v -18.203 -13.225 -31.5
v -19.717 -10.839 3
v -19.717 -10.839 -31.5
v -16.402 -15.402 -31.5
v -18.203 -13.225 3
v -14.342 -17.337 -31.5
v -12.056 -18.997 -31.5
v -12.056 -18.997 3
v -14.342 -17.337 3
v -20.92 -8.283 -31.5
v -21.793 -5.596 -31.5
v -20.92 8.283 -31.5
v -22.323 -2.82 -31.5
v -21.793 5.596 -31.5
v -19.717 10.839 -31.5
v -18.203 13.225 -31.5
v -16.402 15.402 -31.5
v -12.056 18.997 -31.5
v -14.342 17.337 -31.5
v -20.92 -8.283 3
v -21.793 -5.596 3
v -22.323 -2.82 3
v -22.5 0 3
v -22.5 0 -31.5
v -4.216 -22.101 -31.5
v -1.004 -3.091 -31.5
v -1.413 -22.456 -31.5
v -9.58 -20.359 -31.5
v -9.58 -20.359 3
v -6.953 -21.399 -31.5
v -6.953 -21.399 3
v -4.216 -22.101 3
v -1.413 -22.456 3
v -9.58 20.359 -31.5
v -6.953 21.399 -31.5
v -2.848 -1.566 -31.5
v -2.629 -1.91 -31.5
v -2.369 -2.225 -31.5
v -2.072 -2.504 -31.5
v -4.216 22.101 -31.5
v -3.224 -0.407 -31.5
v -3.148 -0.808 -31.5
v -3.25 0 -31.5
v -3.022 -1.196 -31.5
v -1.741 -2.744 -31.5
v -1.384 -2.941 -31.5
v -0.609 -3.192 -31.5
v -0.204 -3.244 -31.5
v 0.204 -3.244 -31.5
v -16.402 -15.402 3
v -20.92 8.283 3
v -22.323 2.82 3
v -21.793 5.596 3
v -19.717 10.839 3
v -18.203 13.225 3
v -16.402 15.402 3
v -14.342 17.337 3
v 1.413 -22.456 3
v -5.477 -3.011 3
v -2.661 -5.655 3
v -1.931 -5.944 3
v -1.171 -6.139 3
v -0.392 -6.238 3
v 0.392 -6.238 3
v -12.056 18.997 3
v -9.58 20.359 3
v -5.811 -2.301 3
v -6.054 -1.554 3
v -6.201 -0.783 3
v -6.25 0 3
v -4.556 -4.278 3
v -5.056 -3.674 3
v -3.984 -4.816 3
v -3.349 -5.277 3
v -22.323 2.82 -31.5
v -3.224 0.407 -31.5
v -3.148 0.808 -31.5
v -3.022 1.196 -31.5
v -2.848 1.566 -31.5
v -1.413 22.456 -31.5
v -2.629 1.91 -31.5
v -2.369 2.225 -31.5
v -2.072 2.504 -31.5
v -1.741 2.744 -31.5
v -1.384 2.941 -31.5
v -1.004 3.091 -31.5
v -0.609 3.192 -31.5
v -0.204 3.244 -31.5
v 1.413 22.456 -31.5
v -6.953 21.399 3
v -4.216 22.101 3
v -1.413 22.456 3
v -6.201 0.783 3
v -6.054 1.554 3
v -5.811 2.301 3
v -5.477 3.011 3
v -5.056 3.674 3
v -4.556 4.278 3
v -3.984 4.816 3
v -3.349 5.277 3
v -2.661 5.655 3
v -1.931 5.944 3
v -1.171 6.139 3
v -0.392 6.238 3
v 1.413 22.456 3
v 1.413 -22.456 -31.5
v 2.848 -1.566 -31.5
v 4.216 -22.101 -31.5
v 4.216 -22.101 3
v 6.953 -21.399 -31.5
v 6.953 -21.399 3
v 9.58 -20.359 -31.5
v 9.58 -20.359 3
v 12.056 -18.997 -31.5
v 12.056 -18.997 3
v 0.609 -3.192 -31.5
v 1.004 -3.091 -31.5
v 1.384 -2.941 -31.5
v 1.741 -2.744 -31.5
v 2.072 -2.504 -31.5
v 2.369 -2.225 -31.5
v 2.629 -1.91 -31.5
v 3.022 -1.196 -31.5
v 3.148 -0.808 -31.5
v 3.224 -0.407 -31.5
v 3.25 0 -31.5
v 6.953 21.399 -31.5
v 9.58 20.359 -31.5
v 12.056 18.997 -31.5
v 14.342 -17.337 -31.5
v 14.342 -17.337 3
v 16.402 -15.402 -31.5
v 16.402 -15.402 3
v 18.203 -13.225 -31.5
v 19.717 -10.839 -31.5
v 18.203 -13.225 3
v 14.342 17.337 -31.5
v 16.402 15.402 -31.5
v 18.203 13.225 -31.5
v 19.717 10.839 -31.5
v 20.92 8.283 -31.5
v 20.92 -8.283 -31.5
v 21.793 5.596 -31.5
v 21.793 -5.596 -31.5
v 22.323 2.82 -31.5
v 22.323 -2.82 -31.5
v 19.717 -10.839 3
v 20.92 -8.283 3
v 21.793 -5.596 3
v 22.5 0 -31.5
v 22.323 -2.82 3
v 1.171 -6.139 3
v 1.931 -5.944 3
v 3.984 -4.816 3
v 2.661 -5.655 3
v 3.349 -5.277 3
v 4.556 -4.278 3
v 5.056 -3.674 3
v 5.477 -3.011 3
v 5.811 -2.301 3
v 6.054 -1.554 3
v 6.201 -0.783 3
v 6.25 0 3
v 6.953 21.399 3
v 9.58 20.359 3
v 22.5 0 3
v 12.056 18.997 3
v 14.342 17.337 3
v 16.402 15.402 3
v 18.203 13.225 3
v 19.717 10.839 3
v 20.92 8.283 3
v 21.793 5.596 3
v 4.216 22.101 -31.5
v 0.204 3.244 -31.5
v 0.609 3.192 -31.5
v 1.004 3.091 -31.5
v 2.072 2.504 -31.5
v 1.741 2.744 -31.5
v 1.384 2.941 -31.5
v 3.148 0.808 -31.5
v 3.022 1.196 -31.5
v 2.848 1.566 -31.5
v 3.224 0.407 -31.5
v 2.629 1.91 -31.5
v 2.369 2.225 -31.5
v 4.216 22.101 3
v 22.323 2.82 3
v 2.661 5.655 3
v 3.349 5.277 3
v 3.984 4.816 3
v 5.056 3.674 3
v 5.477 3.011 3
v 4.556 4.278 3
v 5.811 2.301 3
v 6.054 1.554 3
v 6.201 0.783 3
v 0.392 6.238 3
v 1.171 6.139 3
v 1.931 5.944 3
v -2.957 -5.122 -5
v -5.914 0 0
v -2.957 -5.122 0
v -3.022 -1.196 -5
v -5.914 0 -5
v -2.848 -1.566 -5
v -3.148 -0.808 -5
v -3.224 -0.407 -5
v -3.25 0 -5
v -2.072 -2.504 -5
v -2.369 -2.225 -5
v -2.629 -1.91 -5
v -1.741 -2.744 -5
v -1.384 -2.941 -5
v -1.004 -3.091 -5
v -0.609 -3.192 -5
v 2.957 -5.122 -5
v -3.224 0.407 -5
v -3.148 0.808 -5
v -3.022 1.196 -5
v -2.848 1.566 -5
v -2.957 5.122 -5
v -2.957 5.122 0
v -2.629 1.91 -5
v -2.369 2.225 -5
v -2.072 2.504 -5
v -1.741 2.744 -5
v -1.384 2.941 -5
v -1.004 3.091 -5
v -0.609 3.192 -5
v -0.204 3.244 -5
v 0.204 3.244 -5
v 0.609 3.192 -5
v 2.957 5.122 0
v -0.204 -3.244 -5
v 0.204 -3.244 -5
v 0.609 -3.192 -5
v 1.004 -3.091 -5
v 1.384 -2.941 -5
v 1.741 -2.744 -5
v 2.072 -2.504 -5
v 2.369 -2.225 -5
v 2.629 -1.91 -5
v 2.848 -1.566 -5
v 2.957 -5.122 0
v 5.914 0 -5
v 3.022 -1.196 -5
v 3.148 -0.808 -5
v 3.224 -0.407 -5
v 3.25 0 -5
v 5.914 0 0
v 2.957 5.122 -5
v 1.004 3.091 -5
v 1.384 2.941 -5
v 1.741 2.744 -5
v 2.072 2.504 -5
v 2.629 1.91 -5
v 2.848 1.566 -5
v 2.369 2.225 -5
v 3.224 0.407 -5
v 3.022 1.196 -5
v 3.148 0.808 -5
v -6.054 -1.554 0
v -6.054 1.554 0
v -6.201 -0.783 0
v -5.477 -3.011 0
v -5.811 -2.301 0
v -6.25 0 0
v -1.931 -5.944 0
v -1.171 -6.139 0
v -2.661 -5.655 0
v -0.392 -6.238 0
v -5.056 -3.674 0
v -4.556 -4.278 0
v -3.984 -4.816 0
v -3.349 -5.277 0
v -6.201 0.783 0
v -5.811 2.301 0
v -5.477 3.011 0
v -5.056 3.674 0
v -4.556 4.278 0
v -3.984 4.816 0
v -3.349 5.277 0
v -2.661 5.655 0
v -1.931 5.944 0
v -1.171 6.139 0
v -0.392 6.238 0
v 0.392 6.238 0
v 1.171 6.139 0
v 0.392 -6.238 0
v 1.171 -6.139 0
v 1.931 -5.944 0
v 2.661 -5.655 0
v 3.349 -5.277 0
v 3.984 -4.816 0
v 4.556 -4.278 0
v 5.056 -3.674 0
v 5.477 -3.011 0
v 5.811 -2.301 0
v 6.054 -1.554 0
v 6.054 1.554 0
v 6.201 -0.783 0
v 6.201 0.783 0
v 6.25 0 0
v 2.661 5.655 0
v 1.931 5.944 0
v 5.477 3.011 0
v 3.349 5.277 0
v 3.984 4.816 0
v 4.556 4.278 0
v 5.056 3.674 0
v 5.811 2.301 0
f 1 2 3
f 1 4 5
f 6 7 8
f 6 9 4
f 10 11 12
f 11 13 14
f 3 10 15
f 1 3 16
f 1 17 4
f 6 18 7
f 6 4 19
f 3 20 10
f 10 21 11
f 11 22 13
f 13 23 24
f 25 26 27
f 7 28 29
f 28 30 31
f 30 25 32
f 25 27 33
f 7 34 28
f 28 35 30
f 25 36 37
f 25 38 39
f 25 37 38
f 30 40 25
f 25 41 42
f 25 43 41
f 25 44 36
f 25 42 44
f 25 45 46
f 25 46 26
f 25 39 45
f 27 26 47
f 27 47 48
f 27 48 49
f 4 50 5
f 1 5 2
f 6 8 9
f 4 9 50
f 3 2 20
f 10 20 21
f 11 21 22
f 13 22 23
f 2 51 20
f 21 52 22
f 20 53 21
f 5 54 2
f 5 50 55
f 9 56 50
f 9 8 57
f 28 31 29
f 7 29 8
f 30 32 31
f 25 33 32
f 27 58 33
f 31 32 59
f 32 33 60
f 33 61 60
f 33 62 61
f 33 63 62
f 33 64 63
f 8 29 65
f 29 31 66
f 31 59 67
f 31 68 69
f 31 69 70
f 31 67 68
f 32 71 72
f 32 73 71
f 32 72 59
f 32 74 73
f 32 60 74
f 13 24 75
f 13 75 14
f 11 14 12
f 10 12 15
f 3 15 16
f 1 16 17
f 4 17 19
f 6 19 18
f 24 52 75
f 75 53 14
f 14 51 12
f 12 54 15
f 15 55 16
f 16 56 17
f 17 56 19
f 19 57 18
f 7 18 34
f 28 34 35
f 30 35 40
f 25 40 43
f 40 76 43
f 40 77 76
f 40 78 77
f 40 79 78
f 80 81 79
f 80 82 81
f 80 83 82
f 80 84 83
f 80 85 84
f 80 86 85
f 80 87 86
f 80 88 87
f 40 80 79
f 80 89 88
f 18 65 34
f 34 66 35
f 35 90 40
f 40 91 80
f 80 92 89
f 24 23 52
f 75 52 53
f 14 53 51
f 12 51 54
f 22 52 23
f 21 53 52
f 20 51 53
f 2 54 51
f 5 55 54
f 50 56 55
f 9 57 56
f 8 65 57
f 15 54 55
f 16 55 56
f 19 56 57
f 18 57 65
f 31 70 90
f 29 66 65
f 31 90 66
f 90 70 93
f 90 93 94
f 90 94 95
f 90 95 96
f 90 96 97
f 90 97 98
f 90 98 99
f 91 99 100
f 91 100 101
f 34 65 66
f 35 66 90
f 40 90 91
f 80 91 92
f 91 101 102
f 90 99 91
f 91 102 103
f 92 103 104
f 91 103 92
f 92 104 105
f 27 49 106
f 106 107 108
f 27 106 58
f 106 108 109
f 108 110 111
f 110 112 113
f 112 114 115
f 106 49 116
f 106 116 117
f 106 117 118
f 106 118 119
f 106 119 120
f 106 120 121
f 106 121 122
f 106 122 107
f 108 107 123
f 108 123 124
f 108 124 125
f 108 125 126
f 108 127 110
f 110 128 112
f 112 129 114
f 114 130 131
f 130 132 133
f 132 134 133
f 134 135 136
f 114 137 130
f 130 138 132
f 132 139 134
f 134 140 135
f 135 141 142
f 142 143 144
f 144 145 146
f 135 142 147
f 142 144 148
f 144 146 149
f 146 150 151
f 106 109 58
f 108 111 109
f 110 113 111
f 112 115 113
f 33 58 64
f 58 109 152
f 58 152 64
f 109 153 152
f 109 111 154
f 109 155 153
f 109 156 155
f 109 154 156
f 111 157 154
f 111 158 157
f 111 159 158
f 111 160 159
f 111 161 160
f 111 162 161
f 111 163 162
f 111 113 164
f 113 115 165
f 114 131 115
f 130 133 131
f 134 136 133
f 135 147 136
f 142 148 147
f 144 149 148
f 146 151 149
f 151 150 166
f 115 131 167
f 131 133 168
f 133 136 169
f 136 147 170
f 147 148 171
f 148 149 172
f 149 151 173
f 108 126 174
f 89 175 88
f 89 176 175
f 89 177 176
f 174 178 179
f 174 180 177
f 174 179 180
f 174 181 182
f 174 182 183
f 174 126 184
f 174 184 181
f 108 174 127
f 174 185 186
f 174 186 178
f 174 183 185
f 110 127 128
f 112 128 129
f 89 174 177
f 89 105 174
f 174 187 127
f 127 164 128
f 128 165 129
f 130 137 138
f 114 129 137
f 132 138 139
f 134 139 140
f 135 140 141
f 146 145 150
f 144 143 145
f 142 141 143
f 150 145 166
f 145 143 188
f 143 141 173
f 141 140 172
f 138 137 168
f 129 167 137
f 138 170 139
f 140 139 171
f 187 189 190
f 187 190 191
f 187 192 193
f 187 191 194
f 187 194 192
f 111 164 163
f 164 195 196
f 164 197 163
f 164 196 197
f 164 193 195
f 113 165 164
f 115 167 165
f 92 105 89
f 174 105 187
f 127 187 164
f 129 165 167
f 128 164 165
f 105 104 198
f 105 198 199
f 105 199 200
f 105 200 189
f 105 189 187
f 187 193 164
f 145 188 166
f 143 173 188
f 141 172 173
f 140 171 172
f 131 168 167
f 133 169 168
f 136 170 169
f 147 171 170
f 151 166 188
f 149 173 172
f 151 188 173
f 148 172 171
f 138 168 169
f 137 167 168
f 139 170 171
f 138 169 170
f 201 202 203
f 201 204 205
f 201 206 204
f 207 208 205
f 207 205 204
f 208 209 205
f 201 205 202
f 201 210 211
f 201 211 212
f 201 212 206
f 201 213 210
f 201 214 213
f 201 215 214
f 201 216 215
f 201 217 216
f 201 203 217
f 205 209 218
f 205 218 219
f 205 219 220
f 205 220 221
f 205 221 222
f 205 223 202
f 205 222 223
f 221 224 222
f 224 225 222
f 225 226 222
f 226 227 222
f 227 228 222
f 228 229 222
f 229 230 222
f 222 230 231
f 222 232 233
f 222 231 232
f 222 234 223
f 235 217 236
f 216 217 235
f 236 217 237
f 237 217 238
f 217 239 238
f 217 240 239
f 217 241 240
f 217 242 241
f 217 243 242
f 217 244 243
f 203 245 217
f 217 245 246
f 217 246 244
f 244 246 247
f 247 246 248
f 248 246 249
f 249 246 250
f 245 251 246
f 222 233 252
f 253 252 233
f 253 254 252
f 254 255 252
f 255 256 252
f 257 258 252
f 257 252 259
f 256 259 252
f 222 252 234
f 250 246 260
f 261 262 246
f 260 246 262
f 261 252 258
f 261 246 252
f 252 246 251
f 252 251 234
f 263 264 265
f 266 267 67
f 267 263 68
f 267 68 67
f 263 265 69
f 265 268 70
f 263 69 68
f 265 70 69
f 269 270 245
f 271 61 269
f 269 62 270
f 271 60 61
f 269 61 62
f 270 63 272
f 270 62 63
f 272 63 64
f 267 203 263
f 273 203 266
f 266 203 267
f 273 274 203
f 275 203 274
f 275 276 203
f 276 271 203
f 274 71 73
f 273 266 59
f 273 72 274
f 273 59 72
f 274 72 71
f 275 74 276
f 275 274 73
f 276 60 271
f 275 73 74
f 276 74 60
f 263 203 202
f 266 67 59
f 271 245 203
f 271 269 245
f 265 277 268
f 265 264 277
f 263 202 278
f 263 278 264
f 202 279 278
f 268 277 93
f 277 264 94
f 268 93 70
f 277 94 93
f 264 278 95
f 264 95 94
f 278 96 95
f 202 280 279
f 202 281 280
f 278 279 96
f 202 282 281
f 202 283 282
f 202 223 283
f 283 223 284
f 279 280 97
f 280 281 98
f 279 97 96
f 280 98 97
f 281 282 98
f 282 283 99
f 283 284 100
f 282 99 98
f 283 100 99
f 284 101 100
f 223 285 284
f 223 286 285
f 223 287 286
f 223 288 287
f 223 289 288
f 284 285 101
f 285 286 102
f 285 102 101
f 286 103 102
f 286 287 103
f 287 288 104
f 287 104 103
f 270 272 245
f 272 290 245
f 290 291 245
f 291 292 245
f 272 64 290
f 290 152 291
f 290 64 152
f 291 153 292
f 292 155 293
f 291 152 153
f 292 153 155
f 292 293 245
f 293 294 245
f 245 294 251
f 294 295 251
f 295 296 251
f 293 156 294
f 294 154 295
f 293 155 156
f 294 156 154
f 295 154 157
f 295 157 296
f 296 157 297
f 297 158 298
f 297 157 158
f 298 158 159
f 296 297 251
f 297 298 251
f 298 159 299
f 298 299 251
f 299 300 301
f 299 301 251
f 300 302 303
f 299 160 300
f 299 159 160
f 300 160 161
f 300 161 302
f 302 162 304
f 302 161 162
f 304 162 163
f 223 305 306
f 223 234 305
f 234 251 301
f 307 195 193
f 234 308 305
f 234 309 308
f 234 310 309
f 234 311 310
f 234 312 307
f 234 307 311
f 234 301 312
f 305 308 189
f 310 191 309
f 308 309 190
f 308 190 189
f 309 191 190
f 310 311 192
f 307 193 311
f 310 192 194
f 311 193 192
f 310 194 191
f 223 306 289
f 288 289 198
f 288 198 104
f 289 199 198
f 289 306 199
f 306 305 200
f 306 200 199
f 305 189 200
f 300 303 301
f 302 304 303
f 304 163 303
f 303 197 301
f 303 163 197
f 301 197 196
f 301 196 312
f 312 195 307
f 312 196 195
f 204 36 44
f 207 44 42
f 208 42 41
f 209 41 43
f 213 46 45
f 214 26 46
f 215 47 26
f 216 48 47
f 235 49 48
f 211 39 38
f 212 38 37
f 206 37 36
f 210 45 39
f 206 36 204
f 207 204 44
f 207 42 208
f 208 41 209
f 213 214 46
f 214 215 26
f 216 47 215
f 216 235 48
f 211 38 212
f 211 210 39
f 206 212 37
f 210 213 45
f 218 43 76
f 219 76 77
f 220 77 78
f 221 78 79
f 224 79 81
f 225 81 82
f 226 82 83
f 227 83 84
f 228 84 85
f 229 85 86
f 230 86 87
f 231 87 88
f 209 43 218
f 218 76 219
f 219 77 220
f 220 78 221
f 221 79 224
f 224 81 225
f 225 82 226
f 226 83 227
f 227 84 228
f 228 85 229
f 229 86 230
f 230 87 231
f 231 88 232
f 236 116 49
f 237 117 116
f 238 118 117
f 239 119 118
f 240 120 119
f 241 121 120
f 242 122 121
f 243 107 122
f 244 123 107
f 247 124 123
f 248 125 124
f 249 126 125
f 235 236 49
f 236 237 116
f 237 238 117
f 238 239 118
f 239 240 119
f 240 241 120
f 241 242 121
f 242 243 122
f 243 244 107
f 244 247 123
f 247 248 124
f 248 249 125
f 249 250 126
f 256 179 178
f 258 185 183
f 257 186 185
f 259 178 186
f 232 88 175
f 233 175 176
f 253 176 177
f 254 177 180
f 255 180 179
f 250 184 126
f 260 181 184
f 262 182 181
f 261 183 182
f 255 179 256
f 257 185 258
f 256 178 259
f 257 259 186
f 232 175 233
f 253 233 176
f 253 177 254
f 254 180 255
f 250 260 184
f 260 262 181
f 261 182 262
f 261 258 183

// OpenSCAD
$fn = 50;

difference() {
	union() {
		translate(v = [0, 0, -31.5]) {
			cylinder(h = 34.5, r = 22.5);
		}
		#translate(v = [0, 0, -33.0]) {
			cylinder(h = 33, r = 2.875);
		}
	}
	union() {
		translate(v = [0, 0, 0]) {
			rotate(a = [0, 0, 0]) {
				difference() {
					union() {
						translate(v = [0, 0, -5]) {
							linear_extrude(height = 5) {
								polygon(points = [[5.914249999999999, 0.0], [2.957125, 5.1218907443321156], [-2.9571249999999982, 5.1218907443321156], [-5.914249999999999, 7.242867331857232e-16], [-2.9571250000000022, -5.121890744332115], [2.9571249999999956, -5.121890744332118]]);
							}
						}
					}
					union();
				}
			}
		}
		#cylinder(h = 3, r = 6.25);
		#translate(v = [0, 0, -100.0]) {
			cylinder(h = 200, r = 3.25);
		}
	}
}
